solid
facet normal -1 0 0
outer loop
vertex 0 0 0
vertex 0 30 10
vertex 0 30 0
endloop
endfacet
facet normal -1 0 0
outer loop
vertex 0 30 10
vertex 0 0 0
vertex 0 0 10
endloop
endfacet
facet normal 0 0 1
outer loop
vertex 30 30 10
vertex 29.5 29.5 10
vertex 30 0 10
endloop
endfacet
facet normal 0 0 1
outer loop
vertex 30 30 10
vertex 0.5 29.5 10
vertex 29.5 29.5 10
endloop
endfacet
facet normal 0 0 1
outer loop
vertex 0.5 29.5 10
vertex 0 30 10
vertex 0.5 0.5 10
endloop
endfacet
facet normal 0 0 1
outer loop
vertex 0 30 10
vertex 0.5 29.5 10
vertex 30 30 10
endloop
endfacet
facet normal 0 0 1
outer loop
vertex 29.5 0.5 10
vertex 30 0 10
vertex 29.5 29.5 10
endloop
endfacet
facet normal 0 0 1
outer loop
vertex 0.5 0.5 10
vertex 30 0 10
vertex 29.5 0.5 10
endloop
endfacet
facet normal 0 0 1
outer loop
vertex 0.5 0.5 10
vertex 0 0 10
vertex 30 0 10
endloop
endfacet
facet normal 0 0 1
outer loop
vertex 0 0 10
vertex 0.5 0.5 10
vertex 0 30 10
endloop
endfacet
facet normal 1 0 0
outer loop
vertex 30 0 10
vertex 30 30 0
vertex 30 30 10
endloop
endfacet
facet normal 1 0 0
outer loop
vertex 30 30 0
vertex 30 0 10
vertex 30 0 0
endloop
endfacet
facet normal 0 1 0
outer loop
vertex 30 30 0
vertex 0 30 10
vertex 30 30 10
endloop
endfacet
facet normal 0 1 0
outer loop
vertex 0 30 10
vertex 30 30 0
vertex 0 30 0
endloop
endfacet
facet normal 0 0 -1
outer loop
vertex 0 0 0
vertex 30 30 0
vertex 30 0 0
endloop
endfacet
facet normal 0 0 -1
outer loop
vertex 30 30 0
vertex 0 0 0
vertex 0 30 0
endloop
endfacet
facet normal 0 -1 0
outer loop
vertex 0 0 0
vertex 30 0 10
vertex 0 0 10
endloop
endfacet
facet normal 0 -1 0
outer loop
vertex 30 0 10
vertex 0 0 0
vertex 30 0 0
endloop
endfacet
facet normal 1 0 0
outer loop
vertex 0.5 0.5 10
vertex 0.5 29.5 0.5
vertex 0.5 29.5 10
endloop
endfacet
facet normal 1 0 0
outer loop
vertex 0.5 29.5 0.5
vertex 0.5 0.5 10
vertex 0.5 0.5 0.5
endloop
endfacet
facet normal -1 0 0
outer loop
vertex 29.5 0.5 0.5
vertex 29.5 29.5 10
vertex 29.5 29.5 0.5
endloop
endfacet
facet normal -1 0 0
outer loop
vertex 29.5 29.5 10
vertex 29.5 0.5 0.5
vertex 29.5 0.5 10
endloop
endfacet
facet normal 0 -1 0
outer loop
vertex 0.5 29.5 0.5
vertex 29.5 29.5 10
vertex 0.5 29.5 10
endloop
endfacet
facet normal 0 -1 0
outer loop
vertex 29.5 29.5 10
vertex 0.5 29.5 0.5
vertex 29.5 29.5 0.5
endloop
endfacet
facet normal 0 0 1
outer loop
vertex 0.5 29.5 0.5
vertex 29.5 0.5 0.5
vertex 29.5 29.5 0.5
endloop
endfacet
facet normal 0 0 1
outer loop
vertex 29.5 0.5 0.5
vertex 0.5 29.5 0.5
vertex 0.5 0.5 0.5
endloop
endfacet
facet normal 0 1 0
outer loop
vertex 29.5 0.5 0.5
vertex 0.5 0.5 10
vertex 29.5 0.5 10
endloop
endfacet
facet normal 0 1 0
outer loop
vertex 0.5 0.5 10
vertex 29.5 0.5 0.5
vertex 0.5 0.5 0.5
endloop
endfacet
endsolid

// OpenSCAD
difference(){
  cube([30,30,10]);
  translate([0.5,0.5,0.5]) cube([29,29,12]);
}
